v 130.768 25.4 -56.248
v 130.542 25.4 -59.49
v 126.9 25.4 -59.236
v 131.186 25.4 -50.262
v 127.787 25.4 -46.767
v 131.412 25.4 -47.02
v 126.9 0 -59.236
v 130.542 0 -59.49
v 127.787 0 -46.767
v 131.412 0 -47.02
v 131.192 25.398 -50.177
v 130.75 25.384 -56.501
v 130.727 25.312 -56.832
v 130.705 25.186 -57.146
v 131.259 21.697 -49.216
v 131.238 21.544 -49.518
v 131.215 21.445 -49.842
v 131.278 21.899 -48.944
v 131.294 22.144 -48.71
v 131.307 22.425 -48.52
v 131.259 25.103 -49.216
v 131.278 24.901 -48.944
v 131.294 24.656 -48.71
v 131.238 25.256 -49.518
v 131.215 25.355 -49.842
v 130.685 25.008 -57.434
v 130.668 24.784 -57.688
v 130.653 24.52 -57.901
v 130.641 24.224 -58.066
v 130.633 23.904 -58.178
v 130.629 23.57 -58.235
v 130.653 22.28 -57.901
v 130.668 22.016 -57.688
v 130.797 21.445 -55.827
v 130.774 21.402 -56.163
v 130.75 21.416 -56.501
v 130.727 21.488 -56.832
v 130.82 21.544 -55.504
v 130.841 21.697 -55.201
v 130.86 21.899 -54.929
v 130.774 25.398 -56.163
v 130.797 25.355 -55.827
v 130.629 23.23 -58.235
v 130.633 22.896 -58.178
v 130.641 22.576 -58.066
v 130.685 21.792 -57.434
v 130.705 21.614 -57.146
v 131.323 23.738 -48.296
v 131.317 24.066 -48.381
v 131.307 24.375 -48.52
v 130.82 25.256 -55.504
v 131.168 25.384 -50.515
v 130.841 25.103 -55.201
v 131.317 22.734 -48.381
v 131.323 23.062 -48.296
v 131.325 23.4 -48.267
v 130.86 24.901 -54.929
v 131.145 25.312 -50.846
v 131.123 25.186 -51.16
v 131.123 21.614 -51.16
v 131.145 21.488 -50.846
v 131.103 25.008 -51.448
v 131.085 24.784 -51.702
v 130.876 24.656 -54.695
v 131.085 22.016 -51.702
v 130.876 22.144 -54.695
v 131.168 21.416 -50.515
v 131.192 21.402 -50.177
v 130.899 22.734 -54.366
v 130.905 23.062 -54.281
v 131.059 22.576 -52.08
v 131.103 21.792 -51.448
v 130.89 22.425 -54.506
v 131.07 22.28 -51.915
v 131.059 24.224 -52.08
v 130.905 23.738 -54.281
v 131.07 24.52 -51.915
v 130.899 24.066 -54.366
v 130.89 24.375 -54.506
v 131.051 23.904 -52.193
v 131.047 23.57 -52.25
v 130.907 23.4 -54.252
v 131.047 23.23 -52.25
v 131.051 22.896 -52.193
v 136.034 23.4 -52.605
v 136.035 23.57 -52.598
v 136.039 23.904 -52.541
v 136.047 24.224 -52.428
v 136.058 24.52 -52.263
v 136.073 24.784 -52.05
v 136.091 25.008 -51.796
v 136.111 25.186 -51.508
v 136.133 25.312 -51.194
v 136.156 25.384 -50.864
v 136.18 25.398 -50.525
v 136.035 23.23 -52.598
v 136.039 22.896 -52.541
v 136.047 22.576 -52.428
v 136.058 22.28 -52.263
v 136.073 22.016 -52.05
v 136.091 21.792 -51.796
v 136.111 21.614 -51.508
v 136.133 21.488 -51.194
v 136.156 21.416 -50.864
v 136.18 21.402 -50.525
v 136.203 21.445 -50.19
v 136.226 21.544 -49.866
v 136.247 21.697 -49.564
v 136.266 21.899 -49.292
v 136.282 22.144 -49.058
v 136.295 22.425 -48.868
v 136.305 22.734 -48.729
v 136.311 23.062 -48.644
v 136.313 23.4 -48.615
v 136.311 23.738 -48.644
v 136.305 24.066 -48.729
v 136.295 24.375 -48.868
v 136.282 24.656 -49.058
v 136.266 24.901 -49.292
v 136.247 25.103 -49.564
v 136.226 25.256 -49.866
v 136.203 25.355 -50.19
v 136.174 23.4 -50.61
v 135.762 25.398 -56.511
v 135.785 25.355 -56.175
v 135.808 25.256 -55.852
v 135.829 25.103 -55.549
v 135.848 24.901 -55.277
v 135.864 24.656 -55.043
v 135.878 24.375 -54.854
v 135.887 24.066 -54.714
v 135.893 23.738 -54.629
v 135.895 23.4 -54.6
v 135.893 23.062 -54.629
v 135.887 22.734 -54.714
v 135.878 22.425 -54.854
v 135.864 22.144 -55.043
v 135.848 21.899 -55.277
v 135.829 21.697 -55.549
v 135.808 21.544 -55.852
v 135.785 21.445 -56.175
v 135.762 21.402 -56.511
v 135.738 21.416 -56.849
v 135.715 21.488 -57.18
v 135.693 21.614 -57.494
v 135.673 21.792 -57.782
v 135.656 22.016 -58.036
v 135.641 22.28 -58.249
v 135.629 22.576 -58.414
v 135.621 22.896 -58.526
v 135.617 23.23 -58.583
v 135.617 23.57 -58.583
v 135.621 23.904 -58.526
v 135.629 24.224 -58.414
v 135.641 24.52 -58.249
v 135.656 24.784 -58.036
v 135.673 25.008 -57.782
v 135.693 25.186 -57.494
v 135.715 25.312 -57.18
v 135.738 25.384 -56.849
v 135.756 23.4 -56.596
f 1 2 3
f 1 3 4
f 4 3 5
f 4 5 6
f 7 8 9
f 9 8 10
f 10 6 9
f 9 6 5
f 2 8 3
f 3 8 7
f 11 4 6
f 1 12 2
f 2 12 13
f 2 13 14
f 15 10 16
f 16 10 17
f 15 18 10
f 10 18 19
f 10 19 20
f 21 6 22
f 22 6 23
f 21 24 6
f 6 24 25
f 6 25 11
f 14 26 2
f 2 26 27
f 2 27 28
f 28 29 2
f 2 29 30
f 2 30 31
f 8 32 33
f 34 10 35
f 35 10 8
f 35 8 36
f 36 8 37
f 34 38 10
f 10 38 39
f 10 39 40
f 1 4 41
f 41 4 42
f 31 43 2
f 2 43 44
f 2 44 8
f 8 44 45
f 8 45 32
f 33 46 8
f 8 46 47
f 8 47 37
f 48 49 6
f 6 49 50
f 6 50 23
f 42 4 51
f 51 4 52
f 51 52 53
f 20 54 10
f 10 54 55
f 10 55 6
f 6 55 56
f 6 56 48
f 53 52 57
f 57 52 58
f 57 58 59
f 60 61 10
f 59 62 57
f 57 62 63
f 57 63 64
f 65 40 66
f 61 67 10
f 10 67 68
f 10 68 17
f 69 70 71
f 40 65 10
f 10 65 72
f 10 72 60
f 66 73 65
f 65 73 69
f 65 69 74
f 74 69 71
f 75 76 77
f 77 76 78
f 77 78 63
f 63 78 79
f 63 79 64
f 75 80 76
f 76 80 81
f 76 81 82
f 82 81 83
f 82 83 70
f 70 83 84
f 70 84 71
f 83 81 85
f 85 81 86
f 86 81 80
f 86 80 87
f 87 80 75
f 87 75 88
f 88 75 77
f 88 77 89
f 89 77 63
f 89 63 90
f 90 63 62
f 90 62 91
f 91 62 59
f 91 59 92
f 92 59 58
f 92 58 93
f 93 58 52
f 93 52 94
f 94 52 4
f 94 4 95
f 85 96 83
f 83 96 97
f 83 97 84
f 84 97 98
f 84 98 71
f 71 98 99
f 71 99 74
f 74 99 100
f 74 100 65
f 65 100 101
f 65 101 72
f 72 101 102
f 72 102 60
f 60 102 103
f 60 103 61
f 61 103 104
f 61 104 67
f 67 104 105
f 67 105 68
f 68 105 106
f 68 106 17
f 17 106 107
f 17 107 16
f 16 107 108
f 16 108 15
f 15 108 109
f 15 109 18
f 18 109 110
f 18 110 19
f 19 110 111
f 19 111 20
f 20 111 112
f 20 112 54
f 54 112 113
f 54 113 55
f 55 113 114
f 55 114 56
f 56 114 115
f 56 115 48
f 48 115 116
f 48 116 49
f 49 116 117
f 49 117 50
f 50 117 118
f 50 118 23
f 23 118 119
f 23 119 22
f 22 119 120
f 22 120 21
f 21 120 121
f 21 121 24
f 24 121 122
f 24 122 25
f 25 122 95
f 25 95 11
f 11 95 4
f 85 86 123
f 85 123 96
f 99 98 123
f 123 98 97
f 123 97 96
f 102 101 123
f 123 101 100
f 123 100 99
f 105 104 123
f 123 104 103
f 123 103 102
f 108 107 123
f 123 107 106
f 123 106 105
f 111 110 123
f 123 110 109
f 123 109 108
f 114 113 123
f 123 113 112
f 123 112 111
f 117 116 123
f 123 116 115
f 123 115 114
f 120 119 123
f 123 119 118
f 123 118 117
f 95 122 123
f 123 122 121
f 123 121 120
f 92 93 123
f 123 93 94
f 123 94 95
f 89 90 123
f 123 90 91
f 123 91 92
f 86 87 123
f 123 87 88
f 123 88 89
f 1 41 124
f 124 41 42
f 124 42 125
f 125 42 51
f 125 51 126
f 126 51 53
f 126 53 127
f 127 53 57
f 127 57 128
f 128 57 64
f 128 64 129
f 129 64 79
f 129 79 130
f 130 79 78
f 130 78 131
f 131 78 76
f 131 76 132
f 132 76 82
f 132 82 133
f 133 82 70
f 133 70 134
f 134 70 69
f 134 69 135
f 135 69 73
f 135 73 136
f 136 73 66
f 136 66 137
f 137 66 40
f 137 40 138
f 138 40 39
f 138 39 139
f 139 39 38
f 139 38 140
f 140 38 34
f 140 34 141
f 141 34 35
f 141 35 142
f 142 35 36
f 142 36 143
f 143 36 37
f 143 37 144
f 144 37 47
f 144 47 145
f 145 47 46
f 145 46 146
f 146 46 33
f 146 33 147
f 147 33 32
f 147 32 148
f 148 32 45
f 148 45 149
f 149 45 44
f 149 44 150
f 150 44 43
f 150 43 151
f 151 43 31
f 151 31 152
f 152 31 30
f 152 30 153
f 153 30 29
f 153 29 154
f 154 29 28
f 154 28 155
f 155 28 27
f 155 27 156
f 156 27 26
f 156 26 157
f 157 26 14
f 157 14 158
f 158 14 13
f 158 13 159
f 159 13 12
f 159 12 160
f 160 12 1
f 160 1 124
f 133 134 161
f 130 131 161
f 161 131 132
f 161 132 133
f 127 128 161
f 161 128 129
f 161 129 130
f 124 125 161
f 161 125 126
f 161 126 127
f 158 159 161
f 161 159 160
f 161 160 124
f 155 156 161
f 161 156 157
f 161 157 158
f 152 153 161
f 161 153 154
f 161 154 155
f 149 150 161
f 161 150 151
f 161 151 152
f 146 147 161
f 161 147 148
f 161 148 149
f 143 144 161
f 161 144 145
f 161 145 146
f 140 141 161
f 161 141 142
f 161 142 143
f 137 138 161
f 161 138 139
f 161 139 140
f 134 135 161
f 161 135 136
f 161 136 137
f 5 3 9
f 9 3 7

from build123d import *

# Parameters (mm, degrees)
BOSS_EXTRUDE1_DEPTH = 25.4
BOSS_EXTRUDE2_DEPTH = 25.4
SKETCH3_R           = 2
BOSS_EXTRUDE3_DEPTH = 5


with BuildPart() as part:
    # Sketch1 → Boss-Extrude1 (new body)
    with BuildSketch(Plane(origin=(0, 0, 0), x_dir=(1, 0, 0), z_dir=(0, 1, 0))):
        Polygon((83.176569024, -44.663089882), (25.185203896, -48.709261314), (-35.715075295, 41.609133969), (-10.223479979, 93.854215086), (98.44468436, 101.436206322), (130.944454172, 53.237296637), align=None)
        Polygon((28.400509379, -42.119485598), (-28.400509379, 42.119485598), (-6.124219546, 87.774790999), (95.229378877, 94.846430606), (123.629888256, 52.726945008), (79.07730859, -38.583665795), align=None, mode=Mode.SUBTRACT)
    extrude(amount=BOSS_EXTRUDE1_DEPTH)

    # Sketch2 → Boss-Extrude2 (add)
    with BuildSketch(Plane(origin=(0, 25.4, 0), x_dir=(1, 0, 0), z_dir=(0, 1, 0))):
        Polygon((123.193813482, 58.976945008), (124.063847882, 46.507260162), (131.411983768, 47.019954034), (130.541949367, 59.489638879), align=None)
    extrude(amount=-BOSS_EXTRUDE2_DEPTH)

    # Sketch3 → Boss-Extrude3 (add)
    with BuildSketch(Plane(origin=(134.040133914, 0, -9.35224338), x_dir=(-0.06960275203236939, 0, -0.9975747876272337), z_dir=(0.9975747876272337, 0, -0.06960275203236939))):
        with Locations(Location((41.009284939, 23.4, 0), (0, 0, 90))):
            Circle(SKETCH3_R)
        with Locations(Location((47.009284939, 23.4, 0), (0, 0, 180))):
            Circle(SKETCH3_R)
    extrude(amount=BOSS_EXTRUDE3_DEPTH)

    # SurfaceCut1
    split(bisect_by=Plane(origin=(130.455463613, 0, -9.286150729), x_dir=(-0.07100287910742022, 0, -0.9974761105703019), z_dir=(0.9974761105703019, 0, -0.07100287910742022)), keep=Keep.TOP)


solid = part.part
